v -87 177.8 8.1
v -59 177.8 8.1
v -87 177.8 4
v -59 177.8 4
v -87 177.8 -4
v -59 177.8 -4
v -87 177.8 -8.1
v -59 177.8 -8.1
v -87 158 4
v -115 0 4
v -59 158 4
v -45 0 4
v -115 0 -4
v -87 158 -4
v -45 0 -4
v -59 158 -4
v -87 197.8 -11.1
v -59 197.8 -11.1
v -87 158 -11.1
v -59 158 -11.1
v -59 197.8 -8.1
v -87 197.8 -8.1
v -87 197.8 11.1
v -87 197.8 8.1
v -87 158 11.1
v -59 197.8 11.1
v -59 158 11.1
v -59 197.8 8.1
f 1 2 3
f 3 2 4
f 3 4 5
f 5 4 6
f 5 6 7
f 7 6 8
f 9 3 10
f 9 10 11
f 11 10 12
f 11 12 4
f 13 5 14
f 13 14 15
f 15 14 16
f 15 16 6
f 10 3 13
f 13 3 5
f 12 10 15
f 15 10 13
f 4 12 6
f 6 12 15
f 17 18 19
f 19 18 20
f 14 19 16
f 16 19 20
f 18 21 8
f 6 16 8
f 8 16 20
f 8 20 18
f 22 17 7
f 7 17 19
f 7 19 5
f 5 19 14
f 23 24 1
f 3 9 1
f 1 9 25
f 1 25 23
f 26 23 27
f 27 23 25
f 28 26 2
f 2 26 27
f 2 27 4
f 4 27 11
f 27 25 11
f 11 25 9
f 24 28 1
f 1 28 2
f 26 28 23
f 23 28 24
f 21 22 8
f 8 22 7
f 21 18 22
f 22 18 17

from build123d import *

# Parameters (mm, degrees)
BOSS_EXTRUDE1_DEPTH = 4
BOSS_EXTRUDE2_START = 158
SKETCH2_W           = 28
SKETCH2_H           = 22.2
BOSS_EXTRUDE2_DEPTH = 19.8
BOSS_EXTRUDE3_START = 177.8
SKETCH3_W           = 28
SKETCH3_H           = 3
BOSS_EXTRUDE3_DEPTH = 20


with BuildPart() as part:
    # Sketch1 → Boss-Extrude1 (new, symmetric)
    with BuildSketch(Plane.XY):
        Polygon((-115, 0), (-45, 0), (-59, 177.8), (-87, 177.8), align=None)
    extrude(amount=BOSS_EXTRUDE1_DEPTH, both=True)

    # Sketch2 → Boss-Extrude2 (add)
    with BuildSketch(Plane(origin=(0, 0, 0), x_dir=(1, 0, 0), z_dir=(0, 1, 0)).offset(BOSS_EXTRUDE2_START)):
        with Locations((-73, 0)):
            Rectangle(SKETCH2_W, SKETCH2_H)
    extrude(amount=BOSS_EXTRUDE2_DEPTH)

    # Sketch3 → Boss-Extrude3 (add)
    with BuildSketch(Plane(origin=(0, 0, 0), x_dir=(1, 0, 0), z_dir=(0, 1, 0)).offset(BOSS_EXTRUDE3_START)):
        with Locations((-73, 9.6)):
            Rectangle(SKETCH3_W, SKETCH3_H)
        with Locations((-73, -9.6)):
            Rectangle(SKETCH3_W, SKETCH3_H)
    extrude(amount=BOSS_EXTRUDE3_DEPTH)


solid = part.part
